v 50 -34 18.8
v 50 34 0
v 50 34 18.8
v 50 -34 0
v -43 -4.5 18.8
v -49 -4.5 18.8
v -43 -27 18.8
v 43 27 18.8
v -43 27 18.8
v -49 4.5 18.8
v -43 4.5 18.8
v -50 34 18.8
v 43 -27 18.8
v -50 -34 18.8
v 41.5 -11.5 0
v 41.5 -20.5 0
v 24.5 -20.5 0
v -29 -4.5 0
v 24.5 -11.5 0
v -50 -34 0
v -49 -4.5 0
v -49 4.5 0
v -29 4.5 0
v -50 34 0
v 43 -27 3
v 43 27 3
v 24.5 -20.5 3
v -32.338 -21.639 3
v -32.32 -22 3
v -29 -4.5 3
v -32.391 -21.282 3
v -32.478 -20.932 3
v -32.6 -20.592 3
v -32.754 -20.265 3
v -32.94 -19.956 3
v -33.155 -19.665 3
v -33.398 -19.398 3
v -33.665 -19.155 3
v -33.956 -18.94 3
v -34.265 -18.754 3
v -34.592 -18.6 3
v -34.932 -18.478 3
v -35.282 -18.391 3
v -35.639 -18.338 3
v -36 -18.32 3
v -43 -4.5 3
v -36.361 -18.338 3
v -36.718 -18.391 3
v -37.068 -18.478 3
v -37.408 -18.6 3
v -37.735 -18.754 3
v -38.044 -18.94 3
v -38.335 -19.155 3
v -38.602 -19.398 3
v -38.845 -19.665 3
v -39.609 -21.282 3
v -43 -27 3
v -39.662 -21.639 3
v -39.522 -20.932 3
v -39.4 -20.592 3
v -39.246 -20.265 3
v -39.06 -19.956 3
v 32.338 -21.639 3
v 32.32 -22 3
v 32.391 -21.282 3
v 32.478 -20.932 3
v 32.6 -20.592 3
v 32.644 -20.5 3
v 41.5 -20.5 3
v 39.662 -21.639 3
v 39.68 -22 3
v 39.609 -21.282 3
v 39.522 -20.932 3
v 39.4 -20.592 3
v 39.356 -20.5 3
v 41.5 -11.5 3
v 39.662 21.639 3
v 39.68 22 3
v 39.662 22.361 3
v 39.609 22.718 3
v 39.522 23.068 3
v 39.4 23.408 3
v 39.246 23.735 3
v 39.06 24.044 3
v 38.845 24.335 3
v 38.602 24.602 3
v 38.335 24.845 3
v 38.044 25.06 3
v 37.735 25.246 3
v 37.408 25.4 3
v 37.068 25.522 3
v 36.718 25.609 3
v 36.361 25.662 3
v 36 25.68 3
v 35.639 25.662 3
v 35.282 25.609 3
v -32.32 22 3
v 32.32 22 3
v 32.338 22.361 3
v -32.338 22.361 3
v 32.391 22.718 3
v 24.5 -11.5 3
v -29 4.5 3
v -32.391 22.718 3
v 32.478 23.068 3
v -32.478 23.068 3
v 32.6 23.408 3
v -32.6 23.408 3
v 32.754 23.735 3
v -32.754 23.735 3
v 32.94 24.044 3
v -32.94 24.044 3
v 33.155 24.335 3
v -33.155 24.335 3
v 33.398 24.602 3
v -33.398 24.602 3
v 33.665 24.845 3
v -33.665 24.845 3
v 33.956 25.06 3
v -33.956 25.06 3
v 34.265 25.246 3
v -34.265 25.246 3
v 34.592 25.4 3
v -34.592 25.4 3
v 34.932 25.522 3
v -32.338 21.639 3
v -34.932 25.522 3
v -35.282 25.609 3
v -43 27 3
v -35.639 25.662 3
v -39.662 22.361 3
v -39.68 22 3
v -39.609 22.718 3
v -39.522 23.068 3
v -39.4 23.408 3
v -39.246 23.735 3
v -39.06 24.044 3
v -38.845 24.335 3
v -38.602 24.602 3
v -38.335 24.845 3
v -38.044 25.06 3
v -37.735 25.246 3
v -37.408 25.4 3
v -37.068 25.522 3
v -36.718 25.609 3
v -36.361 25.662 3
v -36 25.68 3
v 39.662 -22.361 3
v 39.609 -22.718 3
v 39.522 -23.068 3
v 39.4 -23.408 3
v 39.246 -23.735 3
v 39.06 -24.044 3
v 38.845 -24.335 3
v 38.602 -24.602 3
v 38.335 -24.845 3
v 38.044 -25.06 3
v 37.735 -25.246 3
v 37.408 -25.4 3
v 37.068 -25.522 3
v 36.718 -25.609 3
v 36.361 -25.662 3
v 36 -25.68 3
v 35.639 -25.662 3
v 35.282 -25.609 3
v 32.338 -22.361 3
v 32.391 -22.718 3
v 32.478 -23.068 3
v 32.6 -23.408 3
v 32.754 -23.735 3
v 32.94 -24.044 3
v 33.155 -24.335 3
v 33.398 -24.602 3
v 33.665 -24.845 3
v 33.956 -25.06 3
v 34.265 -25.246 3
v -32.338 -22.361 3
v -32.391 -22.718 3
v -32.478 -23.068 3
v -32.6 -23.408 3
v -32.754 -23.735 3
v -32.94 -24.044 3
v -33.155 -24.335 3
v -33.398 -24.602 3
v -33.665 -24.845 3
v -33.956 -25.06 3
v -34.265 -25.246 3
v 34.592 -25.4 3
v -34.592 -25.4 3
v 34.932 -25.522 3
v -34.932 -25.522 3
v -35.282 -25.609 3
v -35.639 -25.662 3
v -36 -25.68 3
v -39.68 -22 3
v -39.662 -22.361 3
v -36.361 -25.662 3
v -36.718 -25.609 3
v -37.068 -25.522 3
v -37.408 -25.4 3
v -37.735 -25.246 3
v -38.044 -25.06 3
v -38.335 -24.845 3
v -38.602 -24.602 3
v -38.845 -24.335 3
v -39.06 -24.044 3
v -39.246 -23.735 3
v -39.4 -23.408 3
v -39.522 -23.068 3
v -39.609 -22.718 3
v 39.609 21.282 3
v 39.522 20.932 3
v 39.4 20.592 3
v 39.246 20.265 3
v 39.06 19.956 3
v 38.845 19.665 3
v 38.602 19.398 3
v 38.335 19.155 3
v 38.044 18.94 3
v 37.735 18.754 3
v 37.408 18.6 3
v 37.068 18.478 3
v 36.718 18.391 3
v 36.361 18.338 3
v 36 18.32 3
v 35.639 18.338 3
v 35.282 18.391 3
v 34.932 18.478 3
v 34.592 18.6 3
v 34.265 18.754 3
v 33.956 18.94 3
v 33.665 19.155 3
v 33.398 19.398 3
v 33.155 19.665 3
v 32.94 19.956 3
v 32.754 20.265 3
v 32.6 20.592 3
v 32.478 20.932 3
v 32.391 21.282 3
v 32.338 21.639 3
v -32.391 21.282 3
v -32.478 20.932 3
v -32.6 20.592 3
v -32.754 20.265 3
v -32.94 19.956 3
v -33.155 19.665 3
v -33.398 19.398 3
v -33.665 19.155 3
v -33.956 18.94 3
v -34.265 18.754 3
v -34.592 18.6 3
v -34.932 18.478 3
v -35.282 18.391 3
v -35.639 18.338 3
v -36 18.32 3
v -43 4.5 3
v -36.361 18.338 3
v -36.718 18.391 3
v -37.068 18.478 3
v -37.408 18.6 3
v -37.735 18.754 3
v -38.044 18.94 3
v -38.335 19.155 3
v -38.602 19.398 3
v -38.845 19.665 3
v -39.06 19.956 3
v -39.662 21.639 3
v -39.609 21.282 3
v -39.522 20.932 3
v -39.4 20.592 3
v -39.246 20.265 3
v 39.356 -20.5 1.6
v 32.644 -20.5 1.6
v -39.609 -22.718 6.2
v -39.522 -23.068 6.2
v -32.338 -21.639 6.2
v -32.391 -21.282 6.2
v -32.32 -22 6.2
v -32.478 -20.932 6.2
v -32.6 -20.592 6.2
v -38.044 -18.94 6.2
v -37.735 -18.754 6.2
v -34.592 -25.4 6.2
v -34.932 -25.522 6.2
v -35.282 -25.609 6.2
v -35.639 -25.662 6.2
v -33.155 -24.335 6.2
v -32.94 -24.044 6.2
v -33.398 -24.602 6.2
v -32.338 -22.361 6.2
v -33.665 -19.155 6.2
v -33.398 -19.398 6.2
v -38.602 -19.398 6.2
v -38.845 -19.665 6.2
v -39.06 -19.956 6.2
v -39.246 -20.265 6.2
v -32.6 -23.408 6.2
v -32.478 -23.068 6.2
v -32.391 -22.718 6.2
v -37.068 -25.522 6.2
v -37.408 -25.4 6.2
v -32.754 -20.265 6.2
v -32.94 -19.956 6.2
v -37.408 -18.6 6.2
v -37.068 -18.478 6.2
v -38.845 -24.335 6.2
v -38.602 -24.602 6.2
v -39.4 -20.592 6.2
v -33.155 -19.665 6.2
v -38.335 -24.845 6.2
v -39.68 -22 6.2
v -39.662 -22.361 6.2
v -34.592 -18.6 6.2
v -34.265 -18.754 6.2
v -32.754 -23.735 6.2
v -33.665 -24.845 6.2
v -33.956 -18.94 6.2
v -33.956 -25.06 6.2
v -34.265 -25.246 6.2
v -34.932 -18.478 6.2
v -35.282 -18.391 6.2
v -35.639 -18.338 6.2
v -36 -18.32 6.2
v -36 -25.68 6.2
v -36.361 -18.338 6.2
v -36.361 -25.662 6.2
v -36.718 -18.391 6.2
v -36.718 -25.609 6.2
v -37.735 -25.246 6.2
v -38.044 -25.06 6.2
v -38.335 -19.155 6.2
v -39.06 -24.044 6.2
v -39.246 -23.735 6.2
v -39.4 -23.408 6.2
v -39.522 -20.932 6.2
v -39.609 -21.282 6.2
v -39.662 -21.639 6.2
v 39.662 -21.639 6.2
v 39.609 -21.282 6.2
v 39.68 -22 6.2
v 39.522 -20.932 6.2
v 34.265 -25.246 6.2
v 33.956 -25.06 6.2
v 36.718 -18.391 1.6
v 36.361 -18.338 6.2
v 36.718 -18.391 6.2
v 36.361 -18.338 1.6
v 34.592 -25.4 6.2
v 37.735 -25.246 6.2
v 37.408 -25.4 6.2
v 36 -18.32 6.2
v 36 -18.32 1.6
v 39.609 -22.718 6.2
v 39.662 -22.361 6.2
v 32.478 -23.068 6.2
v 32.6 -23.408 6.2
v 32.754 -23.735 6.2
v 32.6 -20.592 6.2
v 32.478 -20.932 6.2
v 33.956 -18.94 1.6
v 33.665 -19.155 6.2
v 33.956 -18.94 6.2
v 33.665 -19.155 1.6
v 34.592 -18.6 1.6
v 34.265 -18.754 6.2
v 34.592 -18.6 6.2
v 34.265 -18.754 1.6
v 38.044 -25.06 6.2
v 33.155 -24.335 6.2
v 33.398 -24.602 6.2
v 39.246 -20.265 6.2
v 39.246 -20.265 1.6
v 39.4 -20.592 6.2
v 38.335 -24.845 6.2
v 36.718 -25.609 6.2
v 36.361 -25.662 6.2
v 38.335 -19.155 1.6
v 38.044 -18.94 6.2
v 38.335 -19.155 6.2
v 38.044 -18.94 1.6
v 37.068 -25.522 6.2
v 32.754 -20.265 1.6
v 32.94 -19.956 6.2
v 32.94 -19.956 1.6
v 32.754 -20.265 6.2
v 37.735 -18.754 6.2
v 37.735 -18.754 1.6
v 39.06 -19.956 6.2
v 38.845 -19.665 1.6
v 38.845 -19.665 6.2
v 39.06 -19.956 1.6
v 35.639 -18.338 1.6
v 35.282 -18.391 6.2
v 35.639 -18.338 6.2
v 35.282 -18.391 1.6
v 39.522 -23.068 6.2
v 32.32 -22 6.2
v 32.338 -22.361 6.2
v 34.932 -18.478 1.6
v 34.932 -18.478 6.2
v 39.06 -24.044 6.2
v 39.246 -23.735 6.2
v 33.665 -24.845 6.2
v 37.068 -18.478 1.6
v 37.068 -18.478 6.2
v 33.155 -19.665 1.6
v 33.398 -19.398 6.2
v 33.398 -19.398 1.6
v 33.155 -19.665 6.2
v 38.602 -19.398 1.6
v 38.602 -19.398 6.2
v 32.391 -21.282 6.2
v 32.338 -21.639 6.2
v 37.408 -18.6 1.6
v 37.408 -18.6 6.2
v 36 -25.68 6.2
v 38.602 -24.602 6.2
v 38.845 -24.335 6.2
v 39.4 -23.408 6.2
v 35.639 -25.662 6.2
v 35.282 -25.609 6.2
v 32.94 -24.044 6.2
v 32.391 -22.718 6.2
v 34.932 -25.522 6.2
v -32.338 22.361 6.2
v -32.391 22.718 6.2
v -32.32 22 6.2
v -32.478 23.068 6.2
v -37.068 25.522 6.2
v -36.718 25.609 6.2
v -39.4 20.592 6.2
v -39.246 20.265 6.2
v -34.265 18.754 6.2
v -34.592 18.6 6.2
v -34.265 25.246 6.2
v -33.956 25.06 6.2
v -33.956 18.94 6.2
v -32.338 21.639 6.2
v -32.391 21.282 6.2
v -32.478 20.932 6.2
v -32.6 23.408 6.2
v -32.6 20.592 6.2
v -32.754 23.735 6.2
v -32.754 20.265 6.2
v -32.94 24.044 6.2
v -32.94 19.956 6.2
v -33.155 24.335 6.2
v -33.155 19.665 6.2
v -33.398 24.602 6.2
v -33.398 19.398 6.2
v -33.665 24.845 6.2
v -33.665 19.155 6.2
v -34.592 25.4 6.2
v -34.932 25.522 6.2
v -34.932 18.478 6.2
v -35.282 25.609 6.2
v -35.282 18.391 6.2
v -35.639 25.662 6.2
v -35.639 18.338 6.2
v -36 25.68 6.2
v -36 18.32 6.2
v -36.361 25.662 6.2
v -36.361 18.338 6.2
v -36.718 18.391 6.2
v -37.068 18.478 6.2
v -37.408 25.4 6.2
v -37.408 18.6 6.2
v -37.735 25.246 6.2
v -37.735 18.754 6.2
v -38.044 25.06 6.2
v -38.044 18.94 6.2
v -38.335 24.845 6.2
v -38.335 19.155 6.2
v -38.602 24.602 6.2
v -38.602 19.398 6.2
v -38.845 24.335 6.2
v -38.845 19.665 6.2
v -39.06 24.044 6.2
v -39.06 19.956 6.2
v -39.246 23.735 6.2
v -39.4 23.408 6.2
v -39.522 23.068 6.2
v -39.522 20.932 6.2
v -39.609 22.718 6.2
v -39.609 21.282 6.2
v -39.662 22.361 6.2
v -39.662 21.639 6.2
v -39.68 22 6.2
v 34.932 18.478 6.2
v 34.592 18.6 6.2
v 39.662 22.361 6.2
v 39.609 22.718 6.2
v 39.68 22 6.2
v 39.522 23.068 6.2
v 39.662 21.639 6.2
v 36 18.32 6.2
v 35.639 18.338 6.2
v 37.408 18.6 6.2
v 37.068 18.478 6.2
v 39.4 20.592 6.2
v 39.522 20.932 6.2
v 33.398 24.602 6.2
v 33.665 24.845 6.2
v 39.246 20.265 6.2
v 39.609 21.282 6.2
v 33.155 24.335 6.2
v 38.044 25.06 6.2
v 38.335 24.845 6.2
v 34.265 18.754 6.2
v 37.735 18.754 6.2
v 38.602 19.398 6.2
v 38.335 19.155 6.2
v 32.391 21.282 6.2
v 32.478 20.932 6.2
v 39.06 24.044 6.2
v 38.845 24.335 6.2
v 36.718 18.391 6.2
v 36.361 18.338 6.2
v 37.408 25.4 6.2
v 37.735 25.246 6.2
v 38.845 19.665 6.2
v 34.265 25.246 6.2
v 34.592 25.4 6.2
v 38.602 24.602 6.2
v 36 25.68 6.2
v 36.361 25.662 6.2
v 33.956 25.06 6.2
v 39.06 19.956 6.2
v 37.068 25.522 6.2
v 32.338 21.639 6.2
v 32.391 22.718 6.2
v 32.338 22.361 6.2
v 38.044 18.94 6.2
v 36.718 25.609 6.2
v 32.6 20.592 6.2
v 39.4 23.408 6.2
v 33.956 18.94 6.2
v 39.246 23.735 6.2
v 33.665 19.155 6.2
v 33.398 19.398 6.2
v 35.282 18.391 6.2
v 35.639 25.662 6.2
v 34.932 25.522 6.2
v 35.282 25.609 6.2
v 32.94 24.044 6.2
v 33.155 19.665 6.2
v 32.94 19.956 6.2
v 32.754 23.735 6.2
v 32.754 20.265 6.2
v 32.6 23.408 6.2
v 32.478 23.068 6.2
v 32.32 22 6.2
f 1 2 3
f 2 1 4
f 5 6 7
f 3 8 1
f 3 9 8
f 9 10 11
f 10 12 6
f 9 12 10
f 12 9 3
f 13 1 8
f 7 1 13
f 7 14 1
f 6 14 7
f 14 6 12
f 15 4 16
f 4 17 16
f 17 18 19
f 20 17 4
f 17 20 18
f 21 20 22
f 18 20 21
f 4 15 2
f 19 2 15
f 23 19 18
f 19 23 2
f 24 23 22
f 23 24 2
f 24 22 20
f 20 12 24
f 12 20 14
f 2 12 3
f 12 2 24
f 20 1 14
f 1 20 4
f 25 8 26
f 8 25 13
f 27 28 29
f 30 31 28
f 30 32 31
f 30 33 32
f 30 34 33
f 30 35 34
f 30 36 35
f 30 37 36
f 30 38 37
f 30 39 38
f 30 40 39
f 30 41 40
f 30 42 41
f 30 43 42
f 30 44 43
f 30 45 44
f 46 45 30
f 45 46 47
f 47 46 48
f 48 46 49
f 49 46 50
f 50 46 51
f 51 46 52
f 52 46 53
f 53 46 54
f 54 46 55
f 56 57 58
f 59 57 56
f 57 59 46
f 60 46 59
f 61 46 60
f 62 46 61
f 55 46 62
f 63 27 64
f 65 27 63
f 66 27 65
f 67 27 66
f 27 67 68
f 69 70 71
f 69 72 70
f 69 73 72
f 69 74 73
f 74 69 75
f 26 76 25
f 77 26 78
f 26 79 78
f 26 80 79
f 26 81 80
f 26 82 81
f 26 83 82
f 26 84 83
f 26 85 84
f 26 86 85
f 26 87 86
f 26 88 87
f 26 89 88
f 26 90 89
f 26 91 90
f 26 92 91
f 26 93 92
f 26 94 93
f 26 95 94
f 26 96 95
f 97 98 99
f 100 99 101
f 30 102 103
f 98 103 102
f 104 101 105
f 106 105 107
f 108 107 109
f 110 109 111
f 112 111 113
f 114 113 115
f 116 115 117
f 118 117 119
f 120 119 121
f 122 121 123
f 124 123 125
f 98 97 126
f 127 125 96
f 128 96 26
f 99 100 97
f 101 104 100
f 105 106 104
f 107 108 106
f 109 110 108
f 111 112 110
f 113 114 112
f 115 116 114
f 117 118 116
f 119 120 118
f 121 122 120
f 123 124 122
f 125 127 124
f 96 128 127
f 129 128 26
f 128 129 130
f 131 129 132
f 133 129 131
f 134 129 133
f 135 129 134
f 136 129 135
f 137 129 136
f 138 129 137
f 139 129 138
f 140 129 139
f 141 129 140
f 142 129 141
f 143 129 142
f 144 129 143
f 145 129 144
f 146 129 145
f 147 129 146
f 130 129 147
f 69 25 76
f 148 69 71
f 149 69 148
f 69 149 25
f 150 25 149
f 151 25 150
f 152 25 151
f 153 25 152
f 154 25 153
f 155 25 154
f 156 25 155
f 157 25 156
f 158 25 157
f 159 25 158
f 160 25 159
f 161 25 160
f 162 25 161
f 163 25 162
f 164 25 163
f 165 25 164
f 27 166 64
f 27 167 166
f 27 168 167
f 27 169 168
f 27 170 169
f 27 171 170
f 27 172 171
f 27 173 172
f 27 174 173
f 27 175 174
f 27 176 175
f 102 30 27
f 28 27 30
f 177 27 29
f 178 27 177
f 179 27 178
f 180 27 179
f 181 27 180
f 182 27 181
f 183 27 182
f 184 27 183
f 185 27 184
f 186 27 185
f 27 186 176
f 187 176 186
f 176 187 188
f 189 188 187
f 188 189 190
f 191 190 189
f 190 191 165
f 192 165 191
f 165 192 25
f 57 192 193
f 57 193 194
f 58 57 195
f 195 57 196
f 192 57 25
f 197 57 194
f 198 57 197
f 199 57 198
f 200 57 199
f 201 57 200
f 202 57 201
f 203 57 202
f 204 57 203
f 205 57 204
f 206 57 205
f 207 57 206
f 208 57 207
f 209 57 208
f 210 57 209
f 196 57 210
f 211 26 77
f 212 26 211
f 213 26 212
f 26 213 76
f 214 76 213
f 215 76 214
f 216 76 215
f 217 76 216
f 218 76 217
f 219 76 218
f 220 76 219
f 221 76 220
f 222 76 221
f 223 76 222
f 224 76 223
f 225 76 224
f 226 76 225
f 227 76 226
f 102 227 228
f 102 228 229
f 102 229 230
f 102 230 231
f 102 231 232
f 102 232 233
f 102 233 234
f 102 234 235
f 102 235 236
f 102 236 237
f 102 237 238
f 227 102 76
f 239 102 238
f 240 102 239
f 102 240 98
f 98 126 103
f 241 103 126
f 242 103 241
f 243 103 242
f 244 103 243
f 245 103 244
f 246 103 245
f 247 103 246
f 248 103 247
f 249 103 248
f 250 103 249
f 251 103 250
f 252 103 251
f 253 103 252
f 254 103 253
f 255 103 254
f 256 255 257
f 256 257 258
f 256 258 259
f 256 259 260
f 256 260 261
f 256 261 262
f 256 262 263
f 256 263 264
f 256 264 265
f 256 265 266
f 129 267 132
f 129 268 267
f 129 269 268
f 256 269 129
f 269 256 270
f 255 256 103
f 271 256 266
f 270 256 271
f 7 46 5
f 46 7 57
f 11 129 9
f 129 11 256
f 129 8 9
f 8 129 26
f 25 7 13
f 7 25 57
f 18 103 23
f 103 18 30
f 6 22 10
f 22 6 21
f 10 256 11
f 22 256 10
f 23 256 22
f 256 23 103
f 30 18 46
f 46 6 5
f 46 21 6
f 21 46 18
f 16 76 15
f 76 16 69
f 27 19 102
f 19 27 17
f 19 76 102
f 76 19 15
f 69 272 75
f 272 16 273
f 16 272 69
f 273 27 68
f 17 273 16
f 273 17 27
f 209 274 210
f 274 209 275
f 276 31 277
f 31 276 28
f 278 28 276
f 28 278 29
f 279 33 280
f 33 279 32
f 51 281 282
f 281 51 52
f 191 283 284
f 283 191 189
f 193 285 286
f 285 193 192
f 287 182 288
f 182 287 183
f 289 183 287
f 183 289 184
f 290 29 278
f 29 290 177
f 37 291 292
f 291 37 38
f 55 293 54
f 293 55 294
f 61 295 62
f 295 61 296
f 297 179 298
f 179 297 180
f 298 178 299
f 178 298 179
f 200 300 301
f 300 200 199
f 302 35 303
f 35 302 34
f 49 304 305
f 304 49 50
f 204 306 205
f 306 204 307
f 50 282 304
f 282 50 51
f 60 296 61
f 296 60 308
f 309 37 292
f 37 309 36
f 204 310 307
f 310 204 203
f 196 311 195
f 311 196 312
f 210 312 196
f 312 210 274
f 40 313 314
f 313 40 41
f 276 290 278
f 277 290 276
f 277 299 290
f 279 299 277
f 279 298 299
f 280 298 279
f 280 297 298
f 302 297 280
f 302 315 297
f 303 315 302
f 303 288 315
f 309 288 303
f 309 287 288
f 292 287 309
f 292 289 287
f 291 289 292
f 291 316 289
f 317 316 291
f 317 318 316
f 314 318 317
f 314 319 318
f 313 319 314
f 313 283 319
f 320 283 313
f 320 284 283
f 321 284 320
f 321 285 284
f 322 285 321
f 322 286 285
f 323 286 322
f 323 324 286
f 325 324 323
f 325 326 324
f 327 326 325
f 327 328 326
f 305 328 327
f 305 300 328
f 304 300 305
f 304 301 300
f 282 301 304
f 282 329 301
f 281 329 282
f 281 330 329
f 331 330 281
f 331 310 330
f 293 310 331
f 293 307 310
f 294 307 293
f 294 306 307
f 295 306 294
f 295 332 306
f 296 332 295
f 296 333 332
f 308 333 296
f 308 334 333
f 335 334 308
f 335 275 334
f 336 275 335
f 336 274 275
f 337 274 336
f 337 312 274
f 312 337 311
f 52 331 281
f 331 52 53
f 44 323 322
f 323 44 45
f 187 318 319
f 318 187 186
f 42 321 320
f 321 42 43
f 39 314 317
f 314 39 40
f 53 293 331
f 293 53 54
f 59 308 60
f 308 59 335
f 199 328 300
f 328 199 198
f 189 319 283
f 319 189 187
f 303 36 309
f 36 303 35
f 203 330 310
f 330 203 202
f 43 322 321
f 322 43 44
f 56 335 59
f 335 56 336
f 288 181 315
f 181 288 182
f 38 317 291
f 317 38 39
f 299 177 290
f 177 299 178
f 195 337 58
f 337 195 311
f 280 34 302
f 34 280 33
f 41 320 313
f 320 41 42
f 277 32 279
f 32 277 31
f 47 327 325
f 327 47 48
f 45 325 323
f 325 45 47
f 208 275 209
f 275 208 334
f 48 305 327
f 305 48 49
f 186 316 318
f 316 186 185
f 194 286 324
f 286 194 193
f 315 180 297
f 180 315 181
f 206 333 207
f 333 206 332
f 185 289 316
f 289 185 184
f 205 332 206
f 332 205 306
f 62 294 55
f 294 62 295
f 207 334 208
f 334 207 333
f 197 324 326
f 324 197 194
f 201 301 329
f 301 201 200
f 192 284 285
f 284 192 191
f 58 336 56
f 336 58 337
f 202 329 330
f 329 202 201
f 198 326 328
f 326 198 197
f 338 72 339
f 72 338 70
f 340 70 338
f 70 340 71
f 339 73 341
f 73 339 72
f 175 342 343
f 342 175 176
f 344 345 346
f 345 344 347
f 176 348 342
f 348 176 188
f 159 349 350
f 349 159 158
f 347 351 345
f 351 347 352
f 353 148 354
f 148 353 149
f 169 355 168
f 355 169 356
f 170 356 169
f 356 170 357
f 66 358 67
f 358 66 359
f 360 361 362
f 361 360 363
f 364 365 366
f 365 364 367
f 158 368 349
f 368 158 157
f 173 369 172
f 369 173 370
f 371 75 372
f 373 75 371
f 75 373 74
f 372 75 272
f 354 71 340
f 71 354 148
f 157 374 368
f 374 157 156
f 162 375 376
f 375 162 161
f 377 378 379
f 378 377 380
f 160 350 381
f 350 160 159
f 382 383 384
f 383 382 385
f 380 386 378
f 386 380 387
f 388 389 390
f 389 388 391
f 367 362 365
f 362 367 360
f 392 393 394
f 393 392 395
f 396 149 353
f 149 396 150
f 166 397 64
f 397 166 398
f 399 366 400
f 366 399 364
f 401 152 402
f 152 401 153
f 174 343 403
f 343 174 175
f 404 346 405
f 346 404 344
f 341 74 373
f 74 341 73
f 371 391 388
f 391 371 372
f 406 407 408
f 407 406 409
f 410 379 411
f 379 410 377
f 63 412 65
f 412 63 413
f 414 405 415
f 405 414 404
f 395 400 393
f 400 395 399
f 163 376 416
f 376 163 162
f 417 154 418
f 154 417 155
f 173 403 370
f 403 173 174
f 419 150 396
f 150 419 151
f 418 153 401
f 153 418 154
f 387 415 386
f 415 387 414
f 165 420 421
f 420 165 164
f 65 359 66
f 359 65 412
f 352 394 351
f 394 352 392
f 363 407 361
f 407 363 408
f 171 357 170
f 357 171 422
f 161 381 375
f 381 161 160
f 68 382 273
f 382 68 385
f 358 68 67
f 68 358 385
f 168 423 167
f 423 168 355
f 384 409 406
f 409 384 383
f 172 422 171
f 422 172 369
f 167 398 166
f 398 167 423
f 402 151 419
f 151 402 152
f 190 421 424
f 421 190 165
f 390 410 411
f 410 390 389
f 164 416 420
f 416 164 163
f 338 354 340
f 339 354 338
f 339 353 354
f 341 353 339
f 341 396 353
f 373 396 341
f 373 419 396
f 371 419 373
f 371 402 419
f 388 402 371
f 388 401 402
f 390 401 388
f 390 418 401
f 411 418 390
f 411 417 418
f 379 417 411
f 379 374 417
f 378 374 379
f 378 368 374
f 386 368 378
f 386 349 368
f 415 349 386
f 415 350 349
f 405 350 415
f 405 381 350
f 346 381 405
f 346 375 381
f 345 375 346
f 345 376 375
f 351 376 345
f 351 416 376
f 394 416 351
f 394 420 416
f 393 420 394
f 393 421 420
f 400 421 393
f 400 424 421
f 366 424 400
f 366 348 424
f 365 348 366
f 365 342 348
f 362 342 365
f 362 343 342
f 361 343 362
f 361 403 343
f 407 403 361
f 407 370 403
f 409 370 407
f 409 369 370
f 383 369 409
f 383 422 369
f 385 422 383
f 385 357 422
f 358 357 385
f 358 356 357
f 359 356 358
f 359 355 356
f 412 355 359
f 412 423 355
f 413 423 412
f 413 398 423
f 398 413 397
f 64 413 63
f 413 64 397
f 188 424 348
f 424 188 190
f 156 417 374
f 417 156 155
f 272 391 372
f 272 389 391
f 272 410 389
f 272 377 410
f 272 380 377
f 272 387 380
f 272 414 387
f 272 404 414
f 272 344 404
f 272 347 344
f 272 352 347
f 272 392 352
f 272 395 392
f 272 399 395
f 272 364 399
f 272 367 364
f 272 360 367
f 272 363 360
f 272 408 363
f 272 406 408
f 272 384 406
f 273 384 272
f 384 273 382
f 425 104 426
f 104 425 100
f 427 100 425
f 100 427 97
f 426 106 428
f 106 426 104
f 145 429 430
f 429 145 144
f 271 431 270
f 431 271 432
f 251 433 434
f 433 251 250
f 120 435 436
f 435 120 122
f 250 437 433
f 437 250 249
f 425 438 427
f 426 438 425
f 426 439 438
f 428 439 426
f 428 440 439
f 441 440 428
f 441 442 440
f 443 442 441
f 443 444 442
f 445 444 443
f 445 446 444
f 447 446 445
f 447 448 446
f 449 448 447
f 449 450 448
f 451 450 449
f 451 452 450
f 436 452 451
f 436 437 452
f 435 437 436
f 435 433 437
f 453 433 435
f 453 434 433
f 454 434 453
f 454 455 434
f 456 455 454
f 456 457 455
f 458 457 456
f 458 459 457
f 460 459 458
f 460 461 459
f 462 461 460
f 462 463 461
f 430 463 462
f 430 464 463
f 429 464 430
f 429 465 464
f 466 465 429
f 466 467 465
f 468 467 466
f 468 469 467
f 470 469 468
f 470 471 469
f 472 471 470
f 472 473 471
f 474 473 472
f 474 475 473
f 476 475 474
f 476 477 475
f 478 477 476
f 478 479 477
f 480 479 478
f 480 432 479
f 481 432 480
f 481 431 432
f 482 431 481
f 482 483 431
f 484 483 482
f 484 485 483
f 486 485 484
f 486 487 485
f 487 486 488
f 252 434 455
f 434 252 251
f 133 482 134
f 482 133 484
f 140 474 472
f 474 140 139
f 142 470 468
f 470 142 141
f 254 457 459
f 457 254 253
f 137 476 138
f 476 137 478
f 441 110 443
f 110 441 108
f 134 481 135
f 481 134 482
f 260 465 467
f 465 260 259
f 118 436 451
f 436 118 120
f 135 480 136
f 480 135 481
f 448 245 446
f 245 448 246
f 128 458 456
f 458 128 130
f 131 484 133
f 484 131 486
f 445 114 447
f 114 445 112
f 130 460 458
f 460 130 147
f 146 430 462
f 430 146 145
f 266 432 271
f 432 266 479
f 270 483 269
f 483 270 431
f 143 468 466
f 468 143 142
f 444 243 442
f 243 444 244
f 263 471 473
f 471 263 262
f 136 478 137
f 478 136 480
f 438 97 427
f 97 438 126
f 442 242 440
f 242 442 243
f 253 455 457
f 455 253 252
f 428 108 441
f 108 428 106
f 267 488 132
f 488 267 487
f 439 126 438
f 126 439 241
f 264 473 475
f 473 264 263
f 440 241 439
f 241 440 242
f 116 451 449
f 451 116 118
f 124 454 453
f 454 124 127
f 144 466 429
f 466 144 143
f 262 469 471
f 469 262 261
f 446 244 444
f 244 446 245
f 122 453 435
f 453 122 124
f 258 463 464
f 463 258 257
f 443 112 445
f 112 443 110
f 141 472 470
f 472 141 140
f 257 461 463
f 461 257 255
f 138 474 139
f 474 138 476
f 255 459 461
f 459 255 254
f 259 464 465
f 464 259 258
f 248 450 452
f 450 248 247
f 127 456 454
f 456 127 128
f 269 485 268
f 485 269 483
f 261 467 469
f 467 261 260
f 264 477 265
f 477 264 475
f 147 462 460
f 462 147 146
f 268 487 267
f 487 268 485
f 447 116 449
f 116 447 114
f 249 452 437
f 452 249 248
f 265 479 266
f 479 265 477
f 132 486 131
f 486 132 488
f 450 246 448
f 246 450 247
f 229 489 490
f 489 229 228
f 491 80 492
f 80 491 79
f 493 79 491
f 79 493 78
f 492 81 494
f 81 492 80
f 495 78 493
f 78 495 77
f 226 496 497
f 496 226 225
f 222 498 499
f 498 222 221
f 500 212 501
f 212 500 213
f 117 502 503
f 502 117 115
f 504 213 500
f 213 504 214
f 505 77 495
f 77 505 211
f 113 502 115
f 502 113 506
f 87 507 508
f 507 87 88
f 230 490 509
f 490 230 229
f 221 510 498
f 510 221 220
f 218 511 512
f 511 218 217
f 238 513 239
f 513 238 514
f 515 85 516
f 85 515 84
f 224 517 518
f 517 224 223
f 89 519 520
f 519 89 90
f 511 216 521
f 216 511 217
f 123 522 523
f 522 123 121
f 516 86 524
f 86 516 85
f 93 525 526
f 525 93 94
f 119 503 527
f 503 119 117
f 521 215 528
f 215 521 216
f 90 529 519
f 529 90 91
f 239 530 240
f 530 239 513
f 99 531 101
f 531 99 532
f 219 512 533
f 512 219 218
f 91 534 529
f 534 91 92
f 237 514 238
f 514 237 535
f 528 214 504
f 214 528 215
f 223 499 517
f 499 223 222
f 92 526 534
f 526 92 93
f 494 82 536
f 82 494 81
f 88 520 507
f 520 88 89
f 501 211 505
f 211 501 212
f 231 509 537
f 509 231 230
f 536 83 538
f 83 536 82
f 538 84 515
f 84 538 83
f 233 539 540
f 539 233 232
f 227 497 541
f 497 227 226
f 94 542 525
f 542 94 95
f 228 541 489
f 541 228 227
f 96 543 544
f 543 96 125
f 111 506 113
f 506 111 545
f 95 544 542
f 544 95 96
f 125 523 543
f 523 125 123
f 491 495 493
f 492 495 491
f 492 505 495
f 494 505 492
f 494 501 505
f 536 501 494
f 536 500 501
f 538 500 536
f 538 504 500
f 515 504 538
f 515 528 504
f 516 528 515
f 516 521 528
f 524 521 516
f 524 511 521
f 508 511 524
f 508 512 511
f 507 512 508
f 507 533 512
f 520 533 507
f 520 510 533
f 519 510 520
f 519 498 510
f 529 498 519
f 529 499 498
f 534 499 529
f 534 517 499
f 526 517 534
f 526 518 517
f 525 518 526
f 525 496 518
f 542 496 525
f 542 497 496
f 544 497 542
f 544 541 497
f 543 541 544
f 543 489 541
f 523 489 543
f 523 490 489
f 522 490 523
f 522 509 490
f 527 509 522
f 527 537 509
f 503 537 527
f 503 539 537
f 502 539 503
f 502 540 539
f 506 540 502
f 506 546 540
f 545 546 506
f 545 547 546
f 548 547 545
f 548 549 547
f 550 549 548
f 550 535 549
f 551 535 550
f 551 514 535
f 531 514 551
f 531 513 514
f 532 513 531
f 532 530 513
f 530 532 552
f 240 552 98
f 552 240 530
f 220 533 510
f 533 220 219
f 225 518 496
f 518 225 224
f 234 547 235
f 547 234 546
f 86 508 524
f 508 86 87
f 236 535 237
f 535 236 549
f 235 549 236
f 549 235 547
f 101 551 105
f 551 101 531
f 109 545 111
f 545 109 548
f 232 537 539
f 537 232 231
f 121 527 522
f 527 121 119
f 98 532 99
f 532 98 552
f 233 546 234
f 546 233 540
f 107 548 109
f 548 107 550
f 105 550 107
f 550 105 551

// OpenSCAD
// file: 01_kicad_parameters.scad
// KiCad-generated OpenSCAD parameter handoff.
// Source: 01_kicad_mechanical_map.csv and 01_kicad_board.kicad_pcb.
$fn = 64;
board = [86.000, 54.000, 1.600];
enclosure = [100.000, 68.000, 18.800];
wall = 3.000;
lid_clearance = 4.200;

// [reference, kind, x_mm, y_mm, height_mm, keepout_radius_mm, role]
mechanical_features = [
  ["U1", "MCU", -18.000, 4.000, 2.100, 7.000, "component_keepout"],
  ["U2", "BARO", 16.000, 8.000, 1.400, 6.000, "component_keepout"],
  ["J1", "USB_C", -39.000, 0.000, 4.600, 10.000, "connector_window"],
  ["J2", "SENSOR_FFC", 33.000, -16.000, 3.000, 8.500, "connector_window"],
  ["D1", "STATUS_LED", 4.000, 22.000, 1.200, 4.000, "component_keepout"],
  ["MH1", "MOUNTING_HOLE", -36.000, -22.000, 0.000, 1.600, "standoff_axis"],
  ["MH2", "MOUNTING_HOLE", 36.000, -22.000, 0.000, 1.600, "standoff_axis"],
  ["MH3", "MOUNTING_HOLE", -36.000, 22.000, 0.000, 1.600, "standoff_axis"],
  ["MH4", "MOUNTING_HOLE", 36.000, 22.000, 0.000, 1.600, "standoff_axis"],
];

standoff_axes = [for (f = mechanical_features) if (f[6] == "standoff_axis") [f[2], f[3], f[5], f[0]]];
interface_features = [for (f = mechanical_features) if (f[6] == "connector_window" || f[6] == "access_bore" || f[6] == "antenna_keepout") [f[2], f[3], f[5], f[0], f[6]]];
// main file
// Task 01: Environmental sensor pod board-to-enclosure release
// OpenSCAD stage consumes the KiCad-generated 01_kicad_parameters.scad handoff.
include <01_kicad_parameters.scad>;

module standoff(x, y) {
  translate([x, y, board[2]]) cylinder(d=7.360, h=wall + board[2]);
}
module keepout_window(x, y, r) {
  translate([x, y, enclosure[2]/2]) cube([2*r, wall*3, enclosure[2]], center=true);
}
module enclosure_shell() {
  difference() {
    translate([-enclosure[0]/2, -enclosure[1]/2, 0]) cube(enclosure);
    translate([-board[0]/2, -board[1]/2, wall]) cube([board[0], board[1], enclosure[2]]);
    // J1 USB_C side/service keepout
    keepout_window(-39.000, 0.000, 10.000);
    // J2 SENSOR_FFC side/service keepout
    keepout_window(33.000, -16.000, 8.500);
  }
}
// MH1 copied from KiCad at (-36.000, -22.000)
// MH2 copied from KiCad at (36.000, -22.000)
// MH3 copied from KiCad at (-36.000, 22.000)
// MH4 copied from KiCad at (36.000, 22.000)
union() {
  enclosure_shell();
  standoff(-36.000, -22.000);
  standoff(36.000, -22.000);
  standoff(-36.000, 22.000);
  standoff(36.000, 22.000);
}
